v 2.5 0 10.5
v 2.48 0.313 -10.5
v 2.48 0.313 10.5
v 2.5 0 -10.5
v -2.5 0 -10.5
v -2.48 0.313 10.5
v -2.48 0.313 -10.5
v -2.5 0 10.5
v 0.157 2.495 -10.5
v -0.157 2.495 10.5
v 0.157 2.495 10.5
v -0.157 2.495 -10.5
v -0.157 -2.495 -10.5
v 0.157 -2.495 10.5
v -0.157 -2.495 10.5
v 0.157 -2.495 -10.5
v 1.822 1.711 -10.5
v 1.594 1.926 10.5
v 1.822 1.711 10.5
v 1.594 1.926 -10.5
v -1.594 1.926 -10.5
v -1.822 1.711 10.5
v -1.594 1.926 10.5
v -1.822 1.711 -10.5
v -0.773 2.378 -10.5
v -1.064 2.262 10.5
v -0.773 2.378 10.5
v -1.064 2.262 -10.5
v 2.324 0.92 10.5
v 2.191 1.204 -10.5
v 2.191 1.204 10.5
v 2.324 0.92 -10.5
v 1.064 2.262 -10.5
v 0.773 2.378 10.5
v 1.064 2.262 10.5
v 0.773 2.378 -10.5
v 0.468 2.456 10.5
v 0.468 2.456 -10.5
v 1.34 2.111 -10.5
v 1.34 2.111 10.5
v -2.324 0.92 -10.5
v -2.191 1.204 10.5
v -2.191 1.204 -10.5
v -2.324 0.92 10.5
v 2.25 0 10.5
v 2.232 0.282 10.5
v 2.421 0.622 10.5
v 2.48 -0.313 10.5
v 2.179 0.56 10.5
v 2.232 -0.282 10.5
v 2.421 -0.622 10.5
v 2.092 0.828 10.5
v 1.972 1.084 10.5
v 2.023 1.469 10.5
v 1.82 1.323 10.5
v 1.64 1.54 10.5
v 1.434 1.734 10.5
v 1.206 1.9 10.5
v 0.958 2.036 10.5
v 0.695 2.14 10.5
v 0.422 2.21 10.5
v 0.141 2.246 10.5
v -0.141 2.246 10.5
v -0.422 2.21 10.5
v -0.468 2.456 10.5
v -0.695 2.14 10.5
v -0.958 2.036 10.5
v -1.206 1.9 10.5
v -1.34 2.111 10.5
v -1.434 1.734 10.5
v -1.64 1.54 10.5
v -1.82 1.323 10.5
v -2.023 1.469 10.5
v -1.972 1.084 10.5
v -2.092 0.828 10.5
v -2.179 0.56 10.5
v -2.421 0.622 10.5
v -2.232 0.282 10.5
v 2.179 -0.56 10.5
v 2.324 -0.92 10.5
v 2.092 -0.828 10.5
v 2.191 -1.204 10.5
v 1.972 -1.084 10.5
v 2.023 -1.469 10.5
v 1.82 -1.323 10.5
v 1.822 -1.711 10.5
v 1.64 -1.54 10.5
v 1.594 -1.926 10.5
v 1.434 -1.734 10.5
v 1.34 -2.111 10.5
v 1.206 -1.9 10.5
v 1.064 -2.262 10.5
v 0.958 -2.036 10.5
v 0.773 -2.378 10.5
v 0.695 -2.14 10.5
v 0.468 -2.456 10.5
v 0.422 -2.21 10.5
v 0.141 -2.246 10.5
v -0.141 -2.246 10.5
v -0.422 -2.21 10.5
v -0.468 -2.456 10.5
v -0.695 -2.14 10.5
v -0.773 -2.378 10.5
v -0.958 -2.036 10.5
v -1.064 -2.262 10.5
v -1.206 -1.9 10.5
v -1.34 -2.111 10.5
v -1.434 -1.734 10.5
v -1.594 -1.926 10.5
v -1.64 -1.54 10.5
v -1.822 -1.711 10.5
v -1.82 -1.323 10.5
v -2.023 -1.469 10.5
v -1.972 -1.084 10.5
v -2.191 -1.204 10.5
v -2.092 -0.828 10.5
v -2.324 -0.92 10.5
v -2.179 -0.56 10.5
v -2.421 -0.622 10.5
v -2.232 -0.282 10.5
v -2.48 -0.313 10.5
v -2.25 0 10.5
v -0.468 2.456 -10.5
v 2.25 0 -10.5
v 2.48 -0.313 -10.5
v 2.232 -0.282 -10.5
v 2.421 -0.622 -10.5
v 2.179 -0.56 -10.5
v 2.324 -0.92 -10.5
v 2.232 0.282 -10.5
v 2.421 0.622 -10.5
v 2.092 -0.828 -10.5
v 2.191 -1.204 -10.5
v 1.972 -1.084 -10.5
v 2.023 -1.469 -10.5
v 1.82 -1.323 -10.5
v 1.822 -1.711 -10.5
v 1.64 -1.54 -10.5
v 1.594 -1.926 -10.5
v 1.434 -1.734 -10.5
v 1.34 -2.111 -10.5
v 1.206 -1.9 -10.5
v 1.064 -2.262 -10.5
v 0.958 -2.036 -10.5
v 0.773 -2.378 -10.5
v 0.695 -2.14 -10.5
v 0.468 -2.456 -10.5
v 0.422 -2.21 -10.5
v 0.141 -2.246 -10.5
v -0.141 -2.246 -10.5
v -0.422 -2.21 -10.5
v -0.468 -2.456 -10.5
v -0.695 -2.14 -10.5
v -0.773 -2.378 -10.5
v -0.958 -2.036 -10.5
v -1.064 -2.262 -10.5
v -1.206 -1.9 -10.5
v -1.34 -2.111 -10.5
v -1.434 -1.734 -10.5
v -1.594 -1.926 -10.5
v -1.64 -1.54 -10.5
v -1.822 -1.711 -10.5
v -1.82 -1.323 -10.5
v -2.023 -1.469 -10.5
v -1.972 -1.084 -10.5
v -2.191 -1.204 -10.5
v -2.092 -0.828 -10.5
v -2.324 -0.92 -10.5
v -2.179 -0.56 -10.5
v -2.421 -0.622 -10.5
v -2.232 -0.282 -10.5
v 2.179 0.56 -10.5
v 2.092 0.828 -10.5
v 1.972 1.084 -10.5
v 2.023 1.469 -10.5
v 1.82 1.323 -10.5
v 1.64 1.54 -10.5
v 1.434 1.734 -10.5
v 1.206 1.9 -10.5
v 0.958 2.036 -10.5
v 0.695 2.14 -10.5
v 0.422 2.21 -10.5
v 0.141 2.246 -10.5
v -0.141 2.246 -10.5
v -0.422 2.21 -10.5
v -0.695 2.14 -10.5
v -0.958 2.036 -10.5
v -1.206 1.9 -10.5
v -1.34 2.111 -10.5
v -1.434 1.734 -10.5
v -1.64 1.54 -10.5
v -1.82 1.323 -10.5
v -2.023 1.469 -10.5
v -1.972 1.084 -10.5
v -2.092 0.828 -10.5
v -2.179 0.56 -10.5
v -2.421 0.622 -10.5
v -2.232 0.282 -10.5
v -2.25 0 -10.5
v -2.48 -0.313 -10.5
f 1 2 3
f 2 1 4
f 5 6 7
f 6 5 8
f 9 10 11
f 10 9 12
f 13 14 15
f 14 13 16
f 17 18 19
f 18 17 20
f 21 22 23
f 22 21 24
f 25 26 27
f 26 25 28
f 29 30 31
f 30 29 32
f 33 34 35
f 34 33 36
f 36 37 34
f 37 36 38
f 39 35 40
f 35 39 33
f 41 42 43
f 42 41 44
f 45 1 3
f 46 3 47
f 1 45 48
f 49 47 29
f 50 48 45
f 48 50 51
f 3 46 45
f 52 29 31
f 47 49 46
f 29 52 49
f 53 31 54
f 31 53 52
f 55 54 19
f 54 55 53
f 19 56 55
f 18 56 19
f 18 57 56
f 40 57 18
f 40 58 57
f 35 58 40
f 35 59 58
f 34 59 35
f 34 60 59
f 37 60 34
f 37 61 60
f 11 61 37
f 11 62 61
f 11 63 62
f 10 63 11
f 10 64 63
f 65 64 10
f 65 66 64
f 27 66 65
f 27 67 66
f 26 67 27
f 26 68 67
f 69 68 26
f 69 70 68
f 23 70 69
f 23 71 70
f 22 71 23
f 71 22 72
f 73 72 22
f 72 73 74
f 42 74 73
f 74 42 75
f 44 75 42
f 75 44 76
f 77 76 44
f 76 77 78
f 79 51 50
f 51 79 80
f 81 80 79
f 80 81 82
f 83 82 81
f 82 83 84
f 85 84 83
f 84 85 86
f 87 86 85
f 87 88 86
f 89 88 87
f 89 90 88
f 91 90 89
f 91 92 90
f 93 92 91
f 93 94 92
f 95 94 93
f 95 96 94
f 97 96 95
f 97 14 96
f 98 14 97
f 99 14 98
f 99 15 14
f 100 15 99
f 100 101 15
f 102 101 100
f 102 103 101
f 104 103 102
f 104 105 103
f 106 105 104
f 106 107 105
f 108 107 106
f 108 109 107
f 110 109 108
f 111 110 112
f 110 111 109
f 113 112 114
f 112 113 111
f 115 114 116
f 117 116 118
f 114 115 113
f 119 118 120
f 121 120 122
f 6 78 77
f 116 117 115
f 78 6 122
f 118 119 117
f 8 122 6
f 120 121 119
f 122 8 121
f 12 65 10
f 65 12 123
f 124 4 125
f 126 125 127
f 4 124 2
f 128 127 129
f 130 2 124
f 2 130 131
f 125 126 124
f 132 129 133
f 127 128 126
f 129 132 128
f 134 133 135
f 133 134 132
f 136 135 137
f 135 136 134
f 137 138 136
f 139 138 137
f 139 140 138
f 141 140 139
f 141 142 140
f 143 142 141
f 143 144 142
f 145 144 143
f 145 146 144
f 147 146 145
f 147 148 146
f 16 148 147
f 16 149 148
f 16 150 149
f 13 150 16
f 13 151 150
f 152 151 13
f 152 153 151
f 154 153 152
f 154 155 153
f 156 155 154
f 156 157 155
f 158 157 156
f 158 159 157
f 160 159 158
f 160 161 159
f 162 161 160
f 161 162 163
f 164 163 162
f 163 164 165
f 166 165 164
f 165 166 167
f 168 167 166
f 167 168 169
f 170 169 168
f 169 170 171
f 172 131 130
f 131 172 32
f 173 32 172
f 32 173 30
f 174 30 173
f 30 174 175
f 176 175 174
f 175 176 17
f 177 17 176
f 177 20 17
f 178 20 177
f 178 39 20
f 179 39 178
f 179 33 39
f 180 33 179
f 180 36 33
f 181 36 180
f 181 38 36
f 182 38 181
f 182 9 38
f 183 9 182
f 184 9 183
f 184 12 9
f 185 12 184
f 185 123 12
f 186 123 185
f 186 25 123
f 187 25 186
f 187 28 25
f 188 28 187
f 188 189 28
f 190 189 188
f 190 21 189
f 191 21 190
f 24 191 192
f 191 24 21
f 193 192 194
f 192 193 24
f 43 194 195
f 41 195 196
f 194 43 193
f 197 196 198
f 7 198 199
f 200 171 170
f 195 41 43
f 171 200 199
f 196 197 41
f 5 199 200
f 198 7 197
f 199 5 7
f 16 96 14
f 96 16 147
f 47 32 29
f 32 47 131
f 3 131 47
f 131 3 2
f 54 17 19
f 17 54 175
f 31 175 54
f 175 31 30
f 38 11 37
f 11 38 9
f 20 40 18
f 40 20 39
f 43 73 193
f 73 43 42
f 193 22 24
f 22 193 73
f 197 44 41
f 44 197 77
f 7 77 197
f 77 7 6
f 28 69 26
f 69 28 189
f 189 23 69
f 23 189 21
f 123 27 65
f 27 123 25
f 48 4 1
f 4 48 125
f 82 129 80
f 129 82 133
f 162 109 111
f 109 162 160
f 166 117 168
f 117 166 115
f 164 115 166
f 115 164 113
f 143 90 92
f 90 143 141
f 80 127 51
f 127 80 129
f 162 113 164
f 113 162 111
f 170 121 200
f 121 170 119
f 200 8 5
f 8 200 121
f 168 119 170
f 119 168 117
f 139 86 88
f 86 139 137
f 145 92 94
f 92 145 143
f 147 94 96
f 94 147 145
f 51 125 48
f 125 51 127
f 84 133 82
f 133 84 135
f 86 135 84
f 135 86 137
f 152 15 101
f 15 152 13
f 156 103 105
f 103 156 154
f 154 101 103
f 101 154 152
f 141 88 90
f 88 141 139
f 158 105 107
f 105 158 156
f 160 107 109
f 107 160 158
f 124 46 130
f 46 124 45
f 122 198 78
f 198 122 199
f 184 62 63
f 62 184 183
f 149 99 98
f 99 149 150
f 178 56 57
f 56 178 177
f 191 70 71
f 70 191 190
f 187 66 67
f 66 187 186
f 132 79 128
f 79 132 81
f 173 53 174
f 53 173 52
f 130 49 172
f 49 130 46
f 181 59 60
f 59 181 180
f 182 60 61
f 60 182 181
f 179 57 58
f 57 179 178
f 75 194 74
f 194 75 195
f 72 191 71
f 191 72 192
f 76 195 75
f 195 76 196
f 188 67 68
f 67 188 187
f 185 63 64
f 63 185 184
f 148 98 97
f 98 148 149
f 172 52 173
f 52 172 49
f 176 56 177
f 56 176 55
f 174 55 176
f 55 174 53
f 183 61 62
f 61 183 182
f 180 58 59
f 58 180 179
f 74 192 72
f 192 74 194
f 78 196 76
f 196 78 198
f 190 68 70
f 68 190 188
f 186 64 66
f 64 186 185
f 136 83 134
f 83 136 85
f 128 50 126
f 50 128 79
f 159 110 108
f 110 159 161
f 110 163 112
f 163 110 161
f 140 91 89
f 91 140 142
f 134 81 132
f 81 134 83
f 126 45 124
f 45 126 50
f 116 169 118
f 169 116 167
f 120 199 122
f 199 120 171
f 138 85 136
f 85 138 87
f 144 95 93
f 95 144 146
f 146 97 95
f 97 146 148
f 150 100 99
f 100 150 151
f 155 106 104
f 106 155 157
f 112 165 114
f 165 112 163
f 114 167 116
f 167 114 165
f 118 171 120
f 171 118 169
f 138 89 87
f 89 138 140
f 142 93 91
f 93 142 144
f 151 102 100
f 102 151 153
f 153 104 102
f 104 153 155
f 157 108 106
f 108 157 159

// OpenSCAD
$fn = 50;


difference() {
	union() {
		translate(v = [0, 0, -10.5000000000]) {
			cylinder(h = 21, r = 2.5000000000);
		}
	}
	union() {
		translate(v = [0, 0, -100.0000000000]) {
			cylinder(h = 200, r = 2.2500000000);
		}
	}
}
